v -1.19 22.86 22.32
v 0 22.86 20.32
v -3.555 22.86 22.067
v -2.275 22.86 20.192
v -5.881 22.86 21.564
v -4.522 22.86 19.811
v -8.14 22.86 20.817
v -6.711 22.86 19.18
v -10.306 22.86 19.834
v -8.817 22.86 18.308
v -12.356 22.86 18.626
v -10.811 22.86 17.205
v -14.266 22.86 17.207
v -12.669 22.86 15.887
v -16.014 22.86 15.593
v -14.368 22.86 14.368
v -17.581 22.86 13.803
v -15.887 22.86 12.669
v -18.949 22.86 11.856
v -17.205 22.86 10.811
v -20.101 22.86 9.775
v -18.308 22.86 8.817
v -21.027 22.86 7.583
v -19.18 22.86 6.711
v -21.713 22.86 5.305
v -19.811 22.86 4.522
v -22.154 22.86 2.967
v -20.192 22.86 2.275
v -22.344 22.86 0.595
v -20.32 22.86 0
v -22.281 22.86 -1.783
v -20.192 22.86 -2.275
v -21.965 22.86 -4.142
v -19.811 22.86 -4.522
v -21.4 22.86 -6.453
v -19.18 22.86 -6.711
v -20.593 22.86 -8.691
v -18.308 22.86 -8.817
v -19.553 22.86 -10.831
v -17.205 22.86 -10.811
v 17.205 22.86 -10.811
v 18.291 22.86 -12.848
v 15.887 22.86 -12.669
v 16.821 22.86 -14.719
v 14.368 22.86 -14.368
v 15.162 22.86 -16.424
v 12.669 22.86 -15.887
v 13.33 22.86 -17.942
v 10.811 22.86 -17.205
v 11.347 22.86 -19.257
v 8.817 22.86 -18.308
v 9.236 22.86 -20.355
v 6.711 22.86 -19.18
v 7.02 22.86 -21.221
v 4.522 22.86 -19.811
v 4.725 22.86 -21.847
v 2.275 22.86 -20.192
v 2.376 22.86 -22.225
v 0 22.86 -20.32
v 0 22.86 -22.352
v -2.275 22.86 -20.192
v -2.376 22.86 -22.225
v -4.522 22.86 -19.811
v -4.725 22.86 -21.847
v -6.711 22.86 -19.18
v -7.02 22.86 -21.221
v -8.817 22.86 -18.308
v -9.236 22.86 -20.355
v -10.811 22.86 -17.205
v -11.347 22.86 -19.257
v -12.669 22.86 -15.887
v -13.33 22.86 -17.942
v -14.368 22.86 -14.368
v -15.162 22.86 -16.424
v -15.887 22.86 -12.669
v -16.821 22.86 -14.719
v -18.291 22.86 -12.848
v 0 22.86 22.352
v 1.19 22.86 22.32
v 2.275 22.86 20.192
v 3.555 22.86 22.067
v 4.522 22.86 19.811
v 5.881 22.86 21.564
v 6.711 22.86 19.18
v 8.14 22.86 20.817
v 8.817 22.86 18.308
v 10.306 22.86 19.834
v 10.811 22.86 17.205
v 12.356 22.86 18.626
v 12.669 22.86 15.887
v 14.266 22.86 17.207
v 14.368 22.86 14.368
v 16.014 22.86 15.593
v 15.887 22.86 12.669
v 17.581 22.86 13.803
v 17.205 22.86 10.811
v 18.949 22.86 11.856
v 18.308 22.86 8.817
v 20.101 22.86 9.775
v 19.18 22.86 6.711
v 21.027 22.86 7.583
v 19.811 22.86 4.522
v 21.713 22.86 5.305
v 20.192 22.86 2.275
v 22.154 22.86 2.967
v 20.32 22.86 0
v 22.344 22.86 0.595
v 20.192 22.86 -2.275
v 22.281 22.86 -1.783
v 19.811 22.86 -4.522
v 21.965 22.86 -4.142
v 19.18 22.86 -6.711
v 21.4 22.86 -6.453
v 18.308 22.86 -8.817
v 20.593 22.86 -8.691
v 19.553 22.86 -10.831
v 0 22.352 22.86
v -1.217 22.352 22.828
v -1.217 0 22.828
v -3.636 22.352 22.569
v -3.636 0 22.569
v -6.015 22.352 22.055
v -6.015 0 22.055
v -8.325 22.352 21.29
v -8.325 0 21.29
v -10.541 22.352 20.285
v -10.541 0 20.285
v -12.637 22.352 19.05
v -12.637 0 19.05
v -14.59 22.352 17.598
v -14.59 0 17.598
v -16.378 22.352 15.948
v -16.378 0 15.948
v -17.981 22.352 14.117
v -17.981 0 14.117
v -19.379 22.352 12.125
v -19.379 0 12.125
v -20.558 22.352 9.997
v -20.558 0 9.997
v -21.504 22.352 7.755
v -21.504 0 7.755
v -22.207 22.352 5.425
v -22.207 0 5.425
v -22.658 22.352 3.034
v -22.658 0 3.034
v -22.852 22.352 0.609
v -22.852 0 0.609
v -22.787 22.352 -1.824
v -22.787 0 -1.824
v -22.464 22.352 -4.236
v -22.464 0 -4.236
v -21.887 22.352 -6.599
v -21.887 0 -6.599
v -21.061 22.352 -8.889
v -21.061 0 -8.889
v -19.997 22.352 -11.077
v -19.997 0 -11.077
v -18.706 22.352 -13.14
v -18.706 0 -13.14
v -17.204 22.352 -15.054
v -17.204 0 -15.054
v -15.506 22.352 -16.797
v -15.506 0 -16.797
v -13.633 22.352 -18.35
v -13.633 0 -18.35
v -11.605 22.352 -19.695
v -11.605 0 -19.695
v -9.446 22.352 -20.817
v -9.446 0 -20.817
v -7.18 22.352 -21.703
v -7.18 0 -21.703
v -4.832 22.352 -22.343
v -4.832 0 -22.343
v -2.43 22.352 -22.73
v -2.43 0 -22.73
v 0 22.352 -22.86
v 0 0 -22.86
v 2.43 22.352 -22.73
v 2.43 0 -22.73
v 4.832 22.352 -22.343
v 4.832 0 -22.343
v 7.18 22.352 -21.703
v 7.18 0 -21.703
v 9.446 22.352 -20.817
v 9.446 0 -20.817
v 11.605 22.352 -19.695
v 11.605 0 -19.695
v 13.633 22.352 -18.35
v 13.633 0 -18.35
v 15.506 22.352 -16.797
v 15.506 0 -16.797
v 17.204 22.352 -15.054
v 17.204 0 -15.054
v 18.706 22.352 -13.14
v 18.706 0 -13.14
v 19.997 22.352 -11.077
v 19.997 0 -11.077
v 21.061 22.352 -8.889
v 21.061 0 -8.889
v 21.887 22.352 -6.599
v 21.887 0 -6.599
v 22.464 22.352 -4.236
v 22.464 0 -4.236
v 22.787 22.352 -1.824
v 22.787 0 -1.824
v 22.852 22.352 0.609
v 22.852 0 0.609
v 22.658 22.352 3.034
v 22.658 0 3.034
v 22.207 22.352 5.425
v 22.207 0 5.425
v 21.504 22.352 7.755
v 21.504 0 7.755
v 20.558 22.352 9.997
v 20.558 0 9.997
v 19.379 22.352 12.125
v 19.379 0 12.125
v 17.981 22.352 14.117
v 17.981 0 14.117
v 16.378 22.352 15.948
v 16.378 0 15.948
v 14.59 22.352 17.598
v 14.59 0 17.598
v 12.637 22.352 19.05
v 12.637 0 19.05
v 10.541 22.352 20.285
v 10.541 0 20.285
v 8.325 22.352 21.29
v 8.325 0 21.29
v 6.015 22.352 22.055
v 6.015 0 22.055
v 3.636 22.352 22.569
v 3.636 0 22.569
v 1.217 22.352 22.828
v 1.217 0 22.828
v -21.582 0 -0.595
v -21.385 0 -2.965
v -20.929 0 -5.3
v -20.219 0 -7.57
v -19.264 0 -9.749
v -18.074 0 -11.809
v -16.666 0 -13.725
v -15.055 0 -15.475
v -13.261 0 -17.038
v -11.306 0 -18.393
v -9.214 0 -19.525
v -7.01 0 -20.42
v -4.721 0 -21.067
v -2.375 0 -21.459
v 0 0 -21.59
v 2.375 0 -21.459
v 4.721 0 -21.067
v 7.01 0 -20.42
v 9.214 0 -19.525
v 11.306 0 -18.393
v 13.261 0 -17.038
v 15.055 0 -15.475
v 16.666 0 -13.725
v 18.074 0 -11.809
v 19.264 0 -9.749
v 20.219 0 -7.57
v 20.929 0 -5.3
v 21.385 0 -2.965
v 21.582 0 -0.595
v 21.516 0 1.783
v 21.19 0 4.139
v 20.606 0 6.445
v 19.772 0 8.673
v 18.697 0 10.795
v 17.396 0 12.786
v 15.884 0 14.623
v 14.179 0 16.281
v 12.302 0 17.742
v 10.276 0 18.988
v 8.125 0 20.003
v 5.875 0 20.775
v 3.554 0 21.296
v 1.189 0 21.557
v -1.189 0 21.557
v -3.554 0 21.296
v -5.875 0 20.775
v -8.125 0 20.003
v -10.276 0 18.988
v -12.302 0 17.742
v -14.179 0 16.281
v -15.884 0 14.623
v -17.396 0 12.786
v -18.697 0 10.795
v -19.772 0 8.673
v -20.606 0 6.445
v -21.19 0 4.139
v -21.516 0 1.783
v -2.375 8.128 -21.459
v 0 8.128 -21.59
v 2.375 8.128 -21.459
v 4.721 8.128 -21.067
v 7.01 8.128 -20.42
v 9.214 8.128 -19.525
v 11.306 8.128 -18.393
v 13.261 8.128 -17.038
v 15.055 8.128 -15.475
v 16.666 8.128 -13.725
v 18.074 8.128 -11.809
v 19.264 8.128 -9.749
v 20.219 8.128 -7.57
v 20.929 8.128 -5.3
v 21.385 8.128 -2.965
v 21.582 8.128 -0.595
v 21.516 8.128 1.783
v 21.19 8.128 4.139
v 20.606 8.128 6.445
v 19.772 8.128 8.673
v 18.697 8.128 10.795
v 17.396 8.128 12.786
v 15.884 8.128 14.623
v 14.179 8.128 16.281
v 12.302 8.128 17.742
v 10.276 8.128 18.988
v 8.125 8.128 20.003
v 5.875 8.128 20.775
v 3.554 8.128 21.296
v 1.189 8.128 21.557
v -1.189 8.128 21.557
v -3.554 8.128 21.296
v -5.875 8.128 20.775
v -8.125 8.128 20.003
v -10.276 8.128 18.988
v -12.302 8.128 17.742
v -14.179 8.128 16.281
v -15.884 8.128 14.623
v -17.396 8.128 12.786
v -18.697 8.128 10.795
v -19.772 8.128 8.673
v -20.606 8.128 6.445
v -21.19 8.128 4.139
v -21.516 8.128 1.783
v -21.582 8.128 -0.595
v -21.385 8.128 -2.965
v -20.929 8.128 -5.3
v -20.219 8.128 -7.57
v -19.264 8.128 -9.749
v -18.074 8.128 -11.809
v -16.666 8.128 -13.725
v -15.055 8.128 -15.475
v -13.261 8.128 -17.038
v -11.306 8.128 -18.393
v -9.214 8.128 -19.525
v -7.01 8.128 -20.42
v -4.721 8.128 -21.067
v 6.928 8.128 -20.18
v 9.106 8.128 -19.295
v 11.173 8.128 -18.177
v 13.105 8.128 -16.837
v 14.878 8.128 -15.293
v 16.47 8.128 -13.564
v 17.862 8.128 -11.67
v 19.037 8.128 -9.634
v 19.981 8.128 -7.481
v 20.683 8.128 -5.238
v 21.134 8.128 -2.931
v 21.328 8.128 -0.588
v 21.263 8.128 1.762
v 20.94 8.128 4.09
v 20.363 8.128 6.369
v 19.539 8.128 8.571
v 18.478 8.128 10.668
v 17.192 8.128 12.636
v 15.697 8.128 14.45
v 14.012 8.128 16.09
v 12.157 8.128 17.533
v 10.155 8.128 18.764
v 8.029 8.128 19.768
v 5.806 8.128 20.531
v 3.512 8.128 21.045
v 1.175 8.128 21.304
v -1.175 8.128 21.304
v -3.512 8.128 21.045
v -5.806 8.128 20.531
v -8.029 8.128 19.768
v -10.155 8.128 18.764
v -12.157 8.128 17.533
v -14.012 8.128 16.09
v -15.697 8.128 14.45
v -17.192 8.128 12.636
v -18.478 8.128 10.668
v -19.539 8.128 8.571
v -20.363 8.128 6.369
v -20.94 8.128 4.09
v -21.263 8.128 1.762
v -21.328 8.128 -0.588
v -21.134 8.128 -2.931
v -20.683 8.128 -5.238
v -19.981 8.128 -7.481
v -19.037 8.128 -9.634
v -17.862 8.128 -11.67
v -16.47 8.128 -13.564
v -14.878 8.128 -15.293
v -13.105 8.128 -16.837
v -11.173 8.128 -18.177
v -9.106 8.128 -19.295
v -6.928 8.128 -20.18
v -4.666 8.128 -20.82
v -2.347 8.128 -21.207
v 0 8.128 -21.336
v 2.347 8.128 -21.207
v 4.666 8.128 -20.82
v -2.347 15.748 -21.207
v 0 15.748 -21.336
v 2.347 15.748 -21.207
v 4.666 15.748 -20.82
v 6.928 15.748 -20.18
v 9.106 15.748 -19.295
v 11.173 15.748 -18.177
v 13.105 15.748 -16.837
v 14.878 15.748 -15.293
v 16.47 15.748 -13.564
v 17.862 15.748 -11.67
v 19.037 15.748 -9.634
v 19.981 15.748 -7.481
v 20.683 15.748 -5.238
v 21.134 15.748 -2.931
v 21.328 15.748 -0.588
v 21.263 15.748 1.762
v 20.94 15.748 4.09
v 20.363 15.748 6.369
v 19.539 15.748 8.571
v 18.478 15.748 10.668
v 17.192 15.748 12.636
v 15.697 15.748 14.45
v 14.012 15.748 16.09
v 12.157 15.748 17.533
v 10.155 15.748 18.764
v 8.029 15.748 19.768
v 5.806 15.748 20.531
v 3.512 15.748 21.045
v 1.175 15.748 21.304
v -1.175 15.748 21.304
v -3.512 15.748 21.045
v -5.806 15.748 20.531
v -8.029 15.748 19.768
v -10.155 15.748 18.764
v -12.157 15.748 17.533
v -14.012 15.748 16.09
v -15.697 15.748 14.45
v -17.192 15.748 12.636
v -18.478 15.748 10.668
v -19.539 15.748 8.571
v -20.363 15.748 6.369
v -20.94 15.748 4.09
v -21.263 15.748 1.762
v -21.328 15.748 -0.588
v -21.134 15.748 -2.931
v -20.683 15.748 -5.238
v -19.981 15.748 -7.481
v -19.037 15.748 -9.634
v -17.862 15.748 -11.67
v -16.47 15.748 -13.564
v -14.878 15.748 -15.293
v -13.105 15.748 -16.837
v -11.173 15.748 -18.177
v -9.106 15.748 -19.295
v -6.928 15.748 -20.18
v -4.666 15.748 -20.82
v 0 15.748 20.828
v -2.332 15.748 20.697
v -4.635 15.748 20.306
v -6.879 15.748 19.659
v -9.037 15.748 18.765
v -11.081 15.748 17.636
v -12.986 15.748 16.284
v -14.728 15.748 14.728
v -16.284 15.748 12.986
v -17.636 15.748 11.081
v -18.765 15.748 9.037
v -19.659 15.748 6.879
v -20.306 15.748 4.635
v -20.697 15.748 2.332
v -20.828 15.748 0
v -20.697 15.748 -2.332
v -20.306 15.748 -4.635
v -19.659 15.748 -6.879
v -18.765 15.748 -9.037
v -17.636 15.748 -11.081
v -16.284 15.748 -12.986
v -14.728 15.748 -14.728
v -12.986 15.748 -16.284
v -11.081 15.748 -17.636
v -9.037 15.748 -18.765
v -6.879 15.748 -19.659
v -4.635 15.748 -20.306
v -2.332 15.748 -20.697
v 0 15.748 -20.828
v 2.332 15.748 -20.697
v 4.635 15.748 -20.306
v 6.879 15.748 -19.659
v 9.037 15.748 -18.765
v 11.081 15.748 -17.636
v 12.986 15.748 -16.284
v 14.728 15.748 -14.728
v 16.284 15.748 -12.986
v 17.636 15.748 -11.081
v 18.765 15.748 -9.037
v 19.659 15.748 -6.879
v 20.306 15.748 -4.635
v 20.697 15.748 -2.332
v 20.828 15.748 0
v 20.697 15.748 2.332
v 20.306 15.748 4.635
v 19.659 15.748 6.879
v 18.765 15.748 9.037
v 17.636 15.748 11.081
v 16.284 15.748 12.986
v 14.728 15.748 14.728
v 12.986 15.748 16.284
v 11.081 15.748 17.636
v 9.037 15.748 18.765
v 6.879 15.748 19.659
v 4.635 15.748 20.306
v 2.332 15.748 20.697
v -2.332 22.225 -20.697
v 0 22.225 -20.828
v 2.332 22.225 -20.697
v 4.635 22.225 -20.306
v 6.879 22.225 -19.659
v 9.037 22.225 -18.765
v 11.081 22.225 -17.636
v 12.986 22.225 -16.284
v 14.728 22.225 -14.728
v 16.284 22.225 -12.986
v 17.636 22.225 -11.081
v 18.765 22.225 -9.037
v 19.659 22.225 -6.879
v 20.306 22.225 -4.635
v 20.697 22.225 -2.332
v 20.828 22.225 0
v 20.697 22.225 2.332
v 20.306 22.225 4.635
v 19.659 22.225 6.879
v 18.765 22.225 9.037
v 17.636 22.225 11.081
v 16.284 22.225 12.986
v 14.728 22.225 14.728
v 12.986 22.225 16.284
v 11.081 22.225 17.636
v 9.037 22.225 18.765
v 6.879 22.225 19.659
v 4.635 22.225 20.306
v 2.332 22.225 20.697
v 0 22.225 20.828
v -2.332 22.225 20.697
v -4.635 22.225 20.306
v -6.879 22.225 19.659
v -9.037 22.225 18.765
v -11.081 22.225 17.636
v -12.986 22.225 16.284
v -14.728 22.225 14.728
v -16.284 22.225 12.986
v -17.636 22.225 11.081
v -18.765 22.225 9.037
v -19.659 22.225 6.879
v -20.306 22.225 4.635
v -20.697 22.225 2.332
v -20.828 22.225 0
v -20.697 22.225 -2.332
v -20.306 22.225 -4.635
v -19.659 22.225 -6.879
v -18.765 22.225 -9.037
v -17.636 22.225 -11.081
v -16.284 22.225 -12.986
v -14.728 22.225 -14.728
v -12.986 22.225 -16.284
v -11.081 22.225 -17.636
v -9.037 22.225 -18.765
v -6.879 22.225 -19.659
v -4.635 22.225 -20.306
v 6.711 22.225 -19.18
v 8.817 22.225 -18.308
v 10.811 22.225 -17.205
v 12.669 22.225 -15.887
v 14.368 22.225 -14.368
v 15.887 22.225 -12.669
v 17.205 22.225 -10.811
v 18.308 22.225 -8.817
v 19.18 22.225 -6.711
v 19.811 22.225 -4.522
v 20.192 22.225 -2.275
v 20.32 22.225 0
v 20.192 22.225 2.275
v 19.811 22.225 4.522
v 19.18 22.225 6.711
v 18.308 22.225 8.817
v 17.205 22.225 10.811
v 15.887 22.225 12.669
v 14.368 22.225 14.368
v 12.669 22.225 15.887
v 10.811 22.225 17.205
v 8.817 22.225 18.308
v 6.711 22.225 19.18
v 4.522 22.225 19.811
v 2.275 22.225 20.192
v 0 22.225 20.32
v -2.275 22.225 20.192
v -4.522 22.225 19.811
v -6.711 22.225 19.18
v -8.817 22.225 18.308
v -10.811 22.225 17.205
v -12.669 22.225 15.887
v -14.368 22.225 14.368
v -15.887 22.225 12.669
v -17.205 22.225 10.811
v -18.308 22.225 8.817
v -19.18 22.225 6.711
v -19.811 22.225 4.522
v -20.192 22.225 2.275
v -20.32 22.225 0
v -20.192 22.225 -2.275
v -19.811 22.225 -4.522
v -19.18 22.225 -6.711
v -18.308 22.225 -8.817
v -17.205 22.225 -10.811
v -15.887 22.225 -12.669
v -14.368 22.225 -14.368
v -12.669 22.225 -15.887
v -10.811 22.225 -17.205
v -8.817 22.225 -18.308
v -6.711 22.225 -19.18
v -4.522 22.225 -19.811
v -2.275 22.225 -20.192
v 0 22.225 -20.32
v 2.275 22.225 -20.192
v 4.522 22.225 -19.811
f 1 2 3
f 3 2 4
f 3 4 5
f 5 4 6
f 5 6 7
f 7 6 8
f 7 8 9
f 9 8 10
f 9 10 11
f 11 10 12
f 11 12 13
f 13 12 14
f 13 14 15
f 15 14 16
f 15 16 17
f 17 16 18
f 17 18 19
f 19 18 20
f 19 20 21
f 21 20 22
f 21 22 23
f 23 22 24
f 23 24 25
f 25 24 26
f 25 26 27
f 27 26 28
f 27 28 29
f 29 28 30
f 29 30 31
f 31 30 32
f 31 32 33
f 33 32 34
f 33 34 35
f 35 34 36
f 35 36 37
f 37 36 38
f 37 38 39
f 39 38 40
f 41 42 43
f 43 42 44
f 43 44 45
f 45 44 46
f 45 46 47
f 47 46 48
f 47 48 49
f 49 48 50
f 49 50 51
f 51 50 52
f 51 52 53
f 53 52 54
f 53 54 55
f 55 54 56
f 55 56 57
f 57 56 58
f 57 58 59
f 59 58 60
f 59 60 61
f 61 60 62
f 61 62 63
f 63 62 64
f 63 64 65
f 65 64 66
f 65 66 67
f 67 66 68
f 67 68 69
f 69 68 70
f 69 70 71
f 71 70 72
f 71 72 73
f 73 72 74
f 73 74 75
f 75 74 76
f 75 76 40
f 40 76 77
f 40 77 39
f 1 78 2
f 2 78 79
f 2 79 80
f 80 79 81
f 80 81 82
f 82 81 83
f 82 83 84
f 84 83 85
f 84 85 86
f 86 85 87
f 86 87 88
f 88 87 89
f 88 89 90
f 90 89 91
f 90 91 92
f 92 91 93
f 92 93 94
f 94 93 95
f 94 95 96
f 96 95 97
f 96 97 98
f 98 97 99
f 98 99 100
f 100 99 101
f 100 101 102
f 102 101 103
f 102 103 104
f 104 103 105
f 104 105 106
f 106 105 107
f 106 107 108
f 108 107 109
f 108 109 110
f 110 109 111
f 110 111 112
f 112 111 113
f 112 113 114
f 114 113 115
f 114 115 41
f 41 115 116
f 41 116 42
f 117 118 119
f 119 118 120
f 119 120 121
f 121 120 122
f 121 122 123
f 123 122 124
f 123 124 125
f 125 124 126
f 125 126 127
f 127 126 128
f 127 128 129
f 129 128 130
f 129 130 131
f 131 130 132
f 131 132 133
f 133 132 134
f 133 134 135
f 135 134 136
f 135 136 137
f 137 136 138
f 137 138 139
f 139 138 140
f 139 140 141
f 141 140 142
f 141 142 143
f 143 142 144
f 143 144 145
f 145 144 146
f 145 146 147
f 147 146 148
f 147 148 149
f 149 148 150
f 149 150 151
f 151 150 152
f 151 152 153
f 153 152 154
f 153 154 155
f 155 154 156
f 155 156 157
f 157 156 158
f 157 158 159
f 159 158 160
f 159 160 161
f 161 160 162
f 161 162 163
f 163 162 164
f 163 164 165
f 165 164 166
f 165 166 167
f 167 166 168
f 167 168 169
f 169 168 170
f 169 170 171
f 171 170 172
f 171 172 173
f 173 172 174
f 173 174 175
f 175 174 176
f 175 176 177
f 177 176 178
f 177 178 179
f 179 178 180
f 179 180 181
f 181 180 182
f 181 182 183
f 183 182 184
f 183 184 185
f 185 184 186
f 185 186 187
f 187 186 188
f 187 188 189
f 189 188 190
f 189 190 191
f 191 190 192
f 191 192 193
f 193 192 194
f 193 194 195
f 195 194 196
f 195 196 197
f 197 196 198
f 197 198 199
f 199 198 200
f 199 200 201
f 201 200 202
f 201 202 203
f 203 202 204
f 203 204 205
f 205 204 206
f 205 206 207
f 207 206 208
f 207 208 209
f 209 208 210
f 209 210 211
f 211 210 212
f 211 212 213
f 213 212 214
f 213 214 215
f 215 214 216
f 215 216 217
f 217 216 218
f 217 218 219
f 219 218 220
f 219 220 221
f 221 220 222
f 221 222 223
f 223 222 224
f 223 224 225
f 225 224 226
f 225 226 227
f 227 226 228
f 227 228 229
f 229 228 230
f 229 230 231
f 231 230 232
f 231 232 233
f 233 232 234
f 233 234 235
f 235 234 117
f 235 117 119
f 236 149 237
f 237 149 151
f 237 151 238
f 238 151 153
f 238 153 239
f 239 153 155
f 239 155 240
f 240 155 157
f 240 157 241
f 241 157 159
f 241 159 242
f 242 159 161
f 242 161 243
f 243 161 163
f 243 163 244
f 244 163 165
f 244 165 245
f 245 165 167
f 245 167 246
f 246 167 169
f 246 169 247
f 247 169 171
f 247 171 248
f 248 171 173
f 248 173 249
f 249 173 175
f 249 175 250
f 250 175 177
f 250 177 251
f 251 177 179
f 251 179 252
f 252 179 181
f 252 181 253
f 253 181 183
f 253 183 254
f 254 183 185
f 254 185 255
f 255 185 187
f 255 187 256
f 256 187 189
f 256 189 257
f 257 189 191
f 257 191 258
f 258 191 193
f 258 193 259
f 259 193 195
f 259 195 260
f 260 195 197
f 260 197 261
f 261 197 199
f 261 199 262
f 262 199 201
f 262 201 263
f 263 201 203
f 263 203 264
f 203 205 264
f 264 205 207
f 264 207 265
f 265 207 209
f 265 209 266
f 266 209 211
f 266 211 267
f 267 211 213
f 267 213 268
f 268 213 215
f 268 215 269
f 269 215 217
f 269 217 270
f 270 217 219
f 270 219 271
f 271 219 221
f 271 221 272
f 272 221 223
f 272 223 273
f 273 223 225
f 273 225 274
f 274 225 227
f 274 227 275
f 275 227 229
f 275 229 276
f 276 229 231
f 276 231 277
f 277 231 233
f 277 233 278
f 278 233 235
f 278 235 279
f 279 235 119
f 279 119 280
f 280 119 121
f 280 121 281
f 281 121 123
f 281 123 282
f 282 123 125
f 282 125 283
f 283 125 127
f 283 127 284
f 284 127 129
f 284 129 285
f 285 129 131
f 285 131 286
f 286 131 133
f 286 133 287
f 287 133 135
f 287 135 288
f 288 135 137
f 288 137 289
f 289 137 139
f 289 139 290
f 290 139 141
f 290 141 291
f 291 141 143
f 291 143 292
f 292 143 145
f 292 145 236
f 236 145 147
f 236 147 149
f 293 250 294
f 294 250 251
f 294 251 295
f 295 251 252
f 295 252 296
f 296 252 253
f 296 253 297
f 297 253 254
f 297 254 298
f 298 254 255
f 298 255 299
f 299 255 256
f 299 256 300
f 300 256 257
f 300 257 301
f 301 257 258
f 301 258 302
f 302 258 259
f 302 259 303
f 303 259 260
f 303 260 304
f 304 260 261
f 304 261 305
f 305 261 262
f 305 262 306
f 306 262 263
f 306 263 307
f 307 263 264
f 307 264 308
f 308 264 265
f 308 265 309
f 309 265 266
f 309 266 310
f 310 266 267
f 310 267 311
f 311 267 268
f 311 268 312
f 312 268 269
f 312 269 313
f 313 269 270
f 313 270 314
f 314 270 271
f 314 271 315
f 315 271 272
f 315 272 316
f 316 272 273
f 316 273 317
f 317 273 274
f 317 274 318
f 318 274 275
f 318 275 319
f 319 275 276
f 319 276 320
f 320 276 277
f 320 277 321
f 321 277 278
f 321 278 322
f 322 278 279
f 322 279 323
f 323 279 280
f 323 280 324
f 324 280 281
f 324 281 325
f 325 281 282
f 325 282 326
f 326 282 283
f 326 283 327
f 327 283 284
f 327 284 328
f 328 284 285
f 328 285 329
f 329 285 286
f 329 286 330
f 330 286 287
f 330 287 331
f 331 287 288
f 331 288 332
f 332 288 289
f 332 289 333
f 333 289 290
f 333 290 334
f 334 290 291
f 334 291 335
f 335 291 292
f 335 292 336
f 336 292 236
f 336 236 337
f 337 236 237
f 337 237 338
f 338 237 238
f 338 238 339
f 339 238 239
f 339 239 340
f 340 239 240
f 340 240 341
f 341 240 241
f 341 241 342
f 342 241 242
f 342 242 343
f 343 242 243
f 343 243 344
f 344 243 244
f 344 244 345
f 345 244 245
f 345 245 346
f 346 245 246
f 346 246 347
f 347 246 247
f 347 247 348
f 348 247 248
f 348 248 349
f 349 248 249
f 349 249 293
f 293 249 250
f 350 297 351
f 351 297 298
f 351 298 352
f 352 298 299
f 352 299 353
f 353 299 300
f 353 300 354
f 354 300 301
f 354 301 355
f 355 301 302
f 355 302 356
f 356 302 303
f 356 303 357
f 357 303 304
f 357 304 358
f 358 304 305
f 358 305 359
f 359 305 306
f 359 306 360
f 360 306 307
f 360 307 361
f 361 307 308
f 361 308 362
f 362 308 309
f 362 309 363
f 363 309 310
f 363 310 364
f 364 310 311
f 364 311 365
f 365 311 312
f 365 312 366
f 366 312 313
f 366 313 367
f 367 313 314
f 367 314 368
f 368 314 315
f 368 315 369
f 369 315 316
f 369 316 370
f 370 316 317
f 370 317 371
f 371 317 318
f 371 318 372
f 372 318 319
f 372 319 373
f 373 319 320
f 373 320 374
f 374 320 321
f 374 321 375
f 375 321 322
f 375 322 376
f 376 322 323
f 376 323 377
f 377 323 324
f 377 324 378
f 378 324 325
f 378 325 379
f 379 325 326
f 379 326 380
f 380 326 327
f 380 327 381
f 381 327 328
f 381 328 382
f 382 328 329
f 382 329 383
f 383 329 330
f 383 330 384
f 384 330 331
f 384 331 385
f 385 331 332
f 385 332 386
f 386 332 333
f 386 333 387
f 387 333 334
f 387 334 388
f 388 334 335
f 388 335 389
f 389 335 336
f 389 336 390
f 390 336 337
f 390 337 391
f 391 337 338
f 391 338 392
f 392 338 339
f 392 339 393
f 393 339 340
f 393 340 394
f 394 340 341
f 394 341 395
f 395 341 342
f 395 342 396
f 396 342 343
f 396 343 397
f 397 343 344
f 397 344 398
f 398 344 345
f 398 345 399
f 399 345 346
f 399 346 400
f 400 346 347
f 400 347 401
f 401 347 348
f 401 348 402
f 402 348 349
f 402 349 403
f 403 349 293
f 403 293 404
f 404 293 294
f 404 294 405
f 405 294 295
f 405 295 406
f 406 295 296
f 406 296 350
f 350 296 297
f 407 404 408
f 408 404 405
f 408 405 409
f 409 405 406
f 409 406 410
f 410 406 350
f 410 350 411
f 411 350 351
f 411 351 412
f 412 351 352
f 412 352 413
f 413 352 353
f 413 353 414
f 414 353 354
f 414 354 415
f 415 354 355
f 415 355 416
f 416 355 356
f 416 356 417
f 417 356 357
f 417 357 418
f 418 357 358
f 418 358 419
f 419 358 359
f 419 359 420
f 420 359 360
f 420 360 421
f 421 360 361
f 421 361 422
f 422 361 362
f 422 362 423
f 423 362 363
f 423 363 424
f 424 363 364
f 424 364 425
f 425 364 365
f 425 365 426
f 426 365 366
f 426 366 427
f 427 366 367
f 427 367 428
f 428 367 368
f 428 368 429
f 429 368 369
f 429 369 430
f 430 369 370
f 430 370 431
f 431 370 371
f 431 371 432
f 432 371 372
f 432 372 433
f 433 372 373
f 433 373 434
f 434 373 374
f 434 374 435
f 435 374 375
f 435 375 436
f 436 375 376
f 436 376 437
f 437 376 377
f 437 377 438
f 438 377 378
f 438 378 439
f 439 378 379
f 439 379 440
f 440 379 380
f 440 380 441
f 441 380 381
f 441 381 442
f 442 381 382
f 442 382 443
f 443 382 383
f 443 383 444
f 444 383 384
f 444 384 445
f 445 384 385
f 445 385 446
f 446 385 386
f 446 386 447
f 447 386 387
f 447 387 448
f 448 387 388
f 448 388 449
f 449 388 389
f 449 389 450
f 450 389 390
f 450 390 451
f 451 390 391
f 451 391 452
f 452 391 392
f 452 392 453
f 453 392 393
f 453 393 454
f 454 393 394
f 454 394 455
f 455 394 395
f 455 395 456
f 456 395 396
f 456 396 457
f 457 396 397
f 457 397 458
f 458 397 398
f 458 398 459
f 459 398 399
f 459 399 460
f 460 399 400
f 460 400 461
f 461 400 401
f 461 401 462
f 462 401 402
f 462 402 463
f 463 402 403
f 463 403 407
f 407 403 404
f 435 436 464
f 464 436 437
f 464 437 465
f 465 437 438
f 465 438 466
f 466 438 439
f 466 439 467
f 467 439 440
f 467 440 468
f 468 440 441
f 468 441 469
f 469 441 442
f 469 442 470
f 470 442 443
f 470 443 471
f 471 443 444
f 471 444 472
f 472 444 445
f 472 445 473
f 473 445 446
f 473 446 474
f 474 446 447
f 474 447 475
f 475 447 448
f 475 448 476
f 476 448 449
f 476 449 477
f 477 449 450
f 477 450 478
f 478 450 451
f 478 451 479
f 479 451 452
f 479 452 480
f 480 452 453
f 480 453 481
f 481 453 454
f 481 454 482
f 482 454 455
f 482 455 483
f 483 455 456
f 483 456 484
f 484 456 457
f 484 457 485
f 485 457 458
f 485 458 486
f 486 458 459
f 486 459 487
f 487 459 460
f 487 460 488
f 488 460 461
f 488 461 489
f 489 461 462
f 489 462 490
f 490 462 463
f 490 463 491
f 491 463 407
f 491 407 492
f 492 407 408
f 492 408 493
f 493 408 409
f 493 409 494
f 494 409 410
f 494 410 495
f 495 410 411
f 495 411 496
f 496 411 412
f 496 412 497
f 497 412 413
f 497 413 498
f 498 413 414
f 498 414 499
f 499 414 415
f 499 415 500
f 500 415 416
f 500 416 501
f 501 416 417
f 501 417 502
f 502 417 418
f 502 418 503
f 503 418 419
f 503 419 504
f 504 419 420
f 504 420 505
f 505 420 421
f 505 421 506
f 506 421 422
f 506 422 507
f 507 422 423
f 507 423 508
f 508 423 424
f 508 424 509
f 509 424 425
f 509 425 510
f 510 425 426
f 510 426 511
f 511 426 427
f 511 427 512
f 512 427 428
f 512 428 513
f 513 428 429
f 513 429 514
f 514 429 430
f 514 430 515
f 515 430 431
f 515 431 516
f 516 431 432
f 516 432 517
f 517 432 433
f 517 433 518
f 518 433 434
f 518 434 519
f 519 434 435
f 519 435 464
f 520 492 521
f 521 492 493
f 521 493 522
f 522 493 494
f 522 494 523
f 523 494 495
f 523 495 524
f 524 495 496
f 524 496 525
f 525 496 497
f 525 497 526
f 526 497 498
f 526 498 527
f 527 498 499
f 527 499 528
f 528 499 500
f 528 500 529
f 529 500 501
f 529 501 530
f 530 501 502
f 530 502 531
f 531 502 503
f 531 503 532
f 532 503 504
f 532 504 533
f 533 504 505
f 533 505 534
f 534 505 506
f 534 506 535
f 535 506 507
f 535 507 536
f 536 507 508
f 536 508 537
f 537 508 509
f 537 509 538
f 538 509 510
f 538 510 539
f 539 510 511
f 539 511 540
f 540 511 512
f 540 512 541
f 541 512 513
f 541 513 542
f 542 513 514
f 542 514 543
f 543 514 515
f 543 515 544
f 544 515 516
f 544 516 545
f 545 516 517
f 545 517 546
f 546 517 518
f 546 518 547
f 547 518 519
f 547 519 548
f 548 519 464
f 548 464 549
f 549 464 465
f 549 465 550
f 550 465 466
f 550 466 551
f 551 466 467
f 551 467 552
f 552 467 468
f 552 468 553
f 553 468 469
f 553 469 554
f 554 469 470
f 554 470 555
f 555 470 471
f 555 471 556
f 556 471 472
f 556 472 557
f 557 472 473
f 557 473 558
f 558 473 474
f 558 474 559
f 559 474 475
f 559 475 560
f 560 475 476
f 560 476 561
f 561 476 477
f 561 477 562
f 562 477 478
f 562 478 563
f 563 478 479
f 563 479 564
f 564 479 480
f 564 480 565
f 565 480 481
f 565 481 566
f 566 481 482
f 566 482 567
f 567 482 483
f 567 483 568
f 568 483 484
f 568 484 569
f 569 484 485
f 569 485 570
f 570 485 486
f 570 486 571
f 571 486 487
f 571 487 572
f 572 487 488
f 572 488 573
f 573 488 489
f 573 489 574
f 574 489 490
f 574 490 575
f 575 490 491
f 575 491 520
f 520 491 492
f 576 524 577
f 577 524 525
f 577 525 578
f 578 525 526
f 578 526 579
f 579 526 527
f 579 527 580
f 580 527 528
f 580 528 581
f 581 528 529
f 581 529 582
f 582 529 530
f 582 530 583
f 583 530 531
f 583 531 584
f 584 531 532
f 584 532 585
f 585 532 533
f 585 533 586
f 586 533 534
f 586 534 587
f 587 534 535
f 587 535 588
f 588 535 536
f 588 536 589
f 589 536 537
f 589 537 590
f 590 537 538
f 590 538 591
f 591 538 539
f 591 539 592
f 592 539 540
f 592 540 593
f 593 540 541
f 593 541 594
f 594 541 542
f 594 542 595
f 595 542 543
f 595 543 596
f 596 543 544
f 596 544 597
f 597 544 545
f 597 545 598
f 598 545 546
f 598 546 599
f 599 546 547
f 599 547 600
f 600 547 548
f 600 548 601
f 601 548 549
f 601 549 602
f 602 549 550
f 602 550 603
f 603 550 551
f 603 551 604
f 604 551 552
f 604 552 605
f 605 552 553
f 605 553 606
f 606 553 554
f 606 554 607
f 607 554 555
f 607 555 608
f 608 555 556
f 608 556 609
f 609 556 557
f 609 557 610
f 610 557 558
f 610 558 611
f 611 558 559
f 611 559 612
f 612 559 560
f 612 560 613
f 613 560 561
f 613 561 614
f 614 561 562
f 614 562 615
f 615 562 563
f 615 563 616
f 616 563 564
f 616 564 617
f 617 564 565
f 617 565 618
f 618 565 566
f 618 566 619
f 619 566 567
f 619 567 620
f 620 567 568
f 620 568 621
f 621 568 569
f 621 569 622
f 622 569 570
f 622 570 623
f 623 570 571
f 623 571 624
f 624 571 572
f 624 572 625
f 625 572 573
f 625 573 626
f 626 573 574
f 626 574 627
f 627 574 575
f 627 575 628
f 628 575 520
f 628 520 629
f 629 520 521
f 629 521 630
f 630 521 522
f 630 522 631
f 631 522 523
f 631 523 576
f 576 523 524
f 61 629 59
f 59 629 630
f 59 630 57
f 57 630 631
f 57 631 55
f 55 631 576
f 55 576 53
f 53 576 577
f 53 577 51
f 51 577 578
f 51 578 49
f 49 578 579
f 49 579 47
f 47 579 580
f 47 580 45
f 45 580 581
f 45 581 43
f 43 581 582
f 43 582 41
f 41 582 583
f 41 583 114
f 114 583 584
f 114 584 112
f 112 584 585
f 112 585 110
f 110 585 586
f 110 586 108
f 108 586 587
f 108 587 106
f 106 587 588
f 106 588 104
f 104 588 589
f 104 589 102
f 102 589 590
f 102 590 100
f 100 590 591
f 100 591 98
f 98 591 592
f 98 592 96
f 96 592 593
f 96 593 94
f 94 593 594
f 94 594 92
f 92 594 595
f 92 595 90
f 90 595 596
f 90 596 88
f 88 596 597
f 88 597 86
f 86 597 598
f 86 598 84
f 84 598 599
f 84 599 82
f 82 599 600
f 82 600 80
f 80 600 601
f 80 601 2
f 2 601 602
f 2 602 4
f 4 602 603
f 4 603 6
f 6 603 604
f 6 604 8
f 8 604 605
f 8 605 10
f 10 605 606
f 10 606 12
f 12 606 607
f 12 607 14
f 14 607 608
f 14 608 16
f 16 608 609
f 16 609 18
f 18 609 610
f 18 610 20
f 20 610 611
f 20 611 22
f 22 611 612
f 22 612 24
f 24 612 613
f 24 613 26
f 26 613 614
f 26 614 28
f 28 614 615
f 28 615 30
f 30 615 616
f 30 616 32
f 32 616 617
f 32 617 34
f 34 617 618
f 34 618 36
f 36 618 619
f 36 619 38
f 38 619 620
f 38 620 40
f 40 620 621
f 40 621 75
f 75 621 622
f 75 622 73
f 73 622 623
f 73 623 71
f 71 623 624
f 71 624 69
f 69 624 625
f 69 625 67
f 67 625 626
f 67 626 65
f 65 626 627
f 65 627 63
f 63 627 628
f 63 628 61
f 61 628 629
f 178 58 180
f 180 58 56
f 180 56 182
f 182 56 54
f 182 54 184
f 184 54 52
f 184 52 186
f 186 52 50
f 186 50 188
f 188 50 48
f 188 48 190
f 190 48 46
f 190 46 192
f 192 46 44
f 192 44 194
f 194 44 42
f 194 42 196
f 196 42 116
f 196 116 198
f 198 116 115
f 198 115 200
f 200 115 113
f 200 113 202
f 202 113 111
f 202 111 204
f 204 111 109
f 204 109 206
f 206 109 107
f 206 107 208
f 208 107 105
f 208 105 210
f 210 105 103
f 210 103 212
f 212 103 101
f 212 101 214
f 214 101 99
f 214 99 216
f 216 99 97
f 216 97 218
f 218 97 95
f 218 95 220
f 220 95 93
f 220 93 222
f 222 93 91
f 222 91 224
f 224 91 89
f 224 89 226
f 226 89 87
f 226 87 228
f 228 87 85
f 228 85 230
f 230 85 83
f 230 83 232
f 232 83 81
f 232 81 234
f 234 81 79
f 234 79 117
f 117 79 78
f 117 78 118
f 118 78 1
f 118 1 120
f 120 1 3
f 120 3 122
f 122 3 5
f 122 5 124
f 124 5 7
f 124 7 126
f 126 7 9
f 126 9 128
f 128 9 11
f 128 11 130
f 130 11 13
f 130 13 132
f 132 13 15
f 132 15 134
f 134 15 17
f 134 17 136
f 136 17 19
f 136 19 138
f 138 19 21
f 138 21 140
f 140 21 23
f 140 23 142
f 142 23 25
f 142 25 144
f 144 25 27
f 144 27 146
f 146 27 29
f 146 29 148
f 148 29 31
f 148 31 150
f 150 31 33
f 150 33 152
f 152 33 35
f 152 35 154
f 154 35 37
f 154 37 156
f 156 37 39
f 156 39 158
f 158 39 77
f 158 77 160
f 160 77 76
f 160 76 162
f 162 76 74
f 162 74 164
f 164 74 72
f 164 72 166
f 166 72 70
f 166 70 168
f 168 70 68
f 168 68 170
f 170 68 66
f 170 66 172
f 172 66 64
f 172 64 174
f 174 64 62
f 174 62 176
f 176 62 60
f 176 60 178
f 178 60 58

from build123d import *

# Parameters (mm, degrees)
CHAMFER1_SIZE       = 0.508
CHAMFER2_SIZE       = 0.254
BOSS_EXTRUDE1_REACH = 41.595
SKETCH2_R           = 22.86
SKETCH2_R_2         = 21.59


with BuildPart() as part:
    # Sketch1 → Revolve1 (revolve)
    with BuildSketch(Plane.XY, mode=Mode.PRIVATE) as revolve1_sk:
        Polygon((20.32, 22.225), (20.32, 22.86), (22.86, 22.86), (22.86, 0), (22.225, 0), (22.225, 2.413), (21.59, 2.413), (21.59, 5.588), (21.59, 8.128), (21.336, 8.128), (21.336, 15.748), (20.828, 15.748), (20.828, 21.59), (20.828, 22.225), align=None)
    revolve(revolve1_sk.sketch.rotate(Axis((0, -7.741318897, 0), (0, 1, 0)), 90), axis=Axis((0, -7.741318897, 0), (0, 1, 0)))

    # Chamfer1
    chamfer1_edges = [part.edges().sort_by_distance(p)[0] for p in [
        (0, 22.86, 22.86),
    ]]
    chamfer(chamfer1_edges, length=CHAMFER1_SIZE)

    # Chamfer2
    chamfer2_edges = [part.edges().sort_by_distance(p)[0] for p in [
        (0, 0, 22.225),
    ]]
    chamfer(chamfer2_edges, length=CHAMFER2_SIZE)

    # Sketch2 → Boss-Extrude1 (add, up to next)
    with BuildSketch(Plane.XZ, mode=Mode.PRIVATE) as boss_extrude1_sk1:
        with Locations(Location((0, 0, 0), (0, 0, 270))):
            Circle(SKETCH2_R)
        with Locations(Location((0, 0, 0), (0, 0, 270))):
            Circle(SKETCH2_R_2, mode=Mode.SUBTRACT)
    boss_extrude1_tool1 = extrude(boss_extrude1_sk1.sketch, amount=-BOSS_EXTRUDE1_REACH, mode=Mode.PRIVATE) - part.part
    add(boss_extrude1_tool1.solids().sort_by_distance((0, 0, 22.213422))[0])


solid = part.part
